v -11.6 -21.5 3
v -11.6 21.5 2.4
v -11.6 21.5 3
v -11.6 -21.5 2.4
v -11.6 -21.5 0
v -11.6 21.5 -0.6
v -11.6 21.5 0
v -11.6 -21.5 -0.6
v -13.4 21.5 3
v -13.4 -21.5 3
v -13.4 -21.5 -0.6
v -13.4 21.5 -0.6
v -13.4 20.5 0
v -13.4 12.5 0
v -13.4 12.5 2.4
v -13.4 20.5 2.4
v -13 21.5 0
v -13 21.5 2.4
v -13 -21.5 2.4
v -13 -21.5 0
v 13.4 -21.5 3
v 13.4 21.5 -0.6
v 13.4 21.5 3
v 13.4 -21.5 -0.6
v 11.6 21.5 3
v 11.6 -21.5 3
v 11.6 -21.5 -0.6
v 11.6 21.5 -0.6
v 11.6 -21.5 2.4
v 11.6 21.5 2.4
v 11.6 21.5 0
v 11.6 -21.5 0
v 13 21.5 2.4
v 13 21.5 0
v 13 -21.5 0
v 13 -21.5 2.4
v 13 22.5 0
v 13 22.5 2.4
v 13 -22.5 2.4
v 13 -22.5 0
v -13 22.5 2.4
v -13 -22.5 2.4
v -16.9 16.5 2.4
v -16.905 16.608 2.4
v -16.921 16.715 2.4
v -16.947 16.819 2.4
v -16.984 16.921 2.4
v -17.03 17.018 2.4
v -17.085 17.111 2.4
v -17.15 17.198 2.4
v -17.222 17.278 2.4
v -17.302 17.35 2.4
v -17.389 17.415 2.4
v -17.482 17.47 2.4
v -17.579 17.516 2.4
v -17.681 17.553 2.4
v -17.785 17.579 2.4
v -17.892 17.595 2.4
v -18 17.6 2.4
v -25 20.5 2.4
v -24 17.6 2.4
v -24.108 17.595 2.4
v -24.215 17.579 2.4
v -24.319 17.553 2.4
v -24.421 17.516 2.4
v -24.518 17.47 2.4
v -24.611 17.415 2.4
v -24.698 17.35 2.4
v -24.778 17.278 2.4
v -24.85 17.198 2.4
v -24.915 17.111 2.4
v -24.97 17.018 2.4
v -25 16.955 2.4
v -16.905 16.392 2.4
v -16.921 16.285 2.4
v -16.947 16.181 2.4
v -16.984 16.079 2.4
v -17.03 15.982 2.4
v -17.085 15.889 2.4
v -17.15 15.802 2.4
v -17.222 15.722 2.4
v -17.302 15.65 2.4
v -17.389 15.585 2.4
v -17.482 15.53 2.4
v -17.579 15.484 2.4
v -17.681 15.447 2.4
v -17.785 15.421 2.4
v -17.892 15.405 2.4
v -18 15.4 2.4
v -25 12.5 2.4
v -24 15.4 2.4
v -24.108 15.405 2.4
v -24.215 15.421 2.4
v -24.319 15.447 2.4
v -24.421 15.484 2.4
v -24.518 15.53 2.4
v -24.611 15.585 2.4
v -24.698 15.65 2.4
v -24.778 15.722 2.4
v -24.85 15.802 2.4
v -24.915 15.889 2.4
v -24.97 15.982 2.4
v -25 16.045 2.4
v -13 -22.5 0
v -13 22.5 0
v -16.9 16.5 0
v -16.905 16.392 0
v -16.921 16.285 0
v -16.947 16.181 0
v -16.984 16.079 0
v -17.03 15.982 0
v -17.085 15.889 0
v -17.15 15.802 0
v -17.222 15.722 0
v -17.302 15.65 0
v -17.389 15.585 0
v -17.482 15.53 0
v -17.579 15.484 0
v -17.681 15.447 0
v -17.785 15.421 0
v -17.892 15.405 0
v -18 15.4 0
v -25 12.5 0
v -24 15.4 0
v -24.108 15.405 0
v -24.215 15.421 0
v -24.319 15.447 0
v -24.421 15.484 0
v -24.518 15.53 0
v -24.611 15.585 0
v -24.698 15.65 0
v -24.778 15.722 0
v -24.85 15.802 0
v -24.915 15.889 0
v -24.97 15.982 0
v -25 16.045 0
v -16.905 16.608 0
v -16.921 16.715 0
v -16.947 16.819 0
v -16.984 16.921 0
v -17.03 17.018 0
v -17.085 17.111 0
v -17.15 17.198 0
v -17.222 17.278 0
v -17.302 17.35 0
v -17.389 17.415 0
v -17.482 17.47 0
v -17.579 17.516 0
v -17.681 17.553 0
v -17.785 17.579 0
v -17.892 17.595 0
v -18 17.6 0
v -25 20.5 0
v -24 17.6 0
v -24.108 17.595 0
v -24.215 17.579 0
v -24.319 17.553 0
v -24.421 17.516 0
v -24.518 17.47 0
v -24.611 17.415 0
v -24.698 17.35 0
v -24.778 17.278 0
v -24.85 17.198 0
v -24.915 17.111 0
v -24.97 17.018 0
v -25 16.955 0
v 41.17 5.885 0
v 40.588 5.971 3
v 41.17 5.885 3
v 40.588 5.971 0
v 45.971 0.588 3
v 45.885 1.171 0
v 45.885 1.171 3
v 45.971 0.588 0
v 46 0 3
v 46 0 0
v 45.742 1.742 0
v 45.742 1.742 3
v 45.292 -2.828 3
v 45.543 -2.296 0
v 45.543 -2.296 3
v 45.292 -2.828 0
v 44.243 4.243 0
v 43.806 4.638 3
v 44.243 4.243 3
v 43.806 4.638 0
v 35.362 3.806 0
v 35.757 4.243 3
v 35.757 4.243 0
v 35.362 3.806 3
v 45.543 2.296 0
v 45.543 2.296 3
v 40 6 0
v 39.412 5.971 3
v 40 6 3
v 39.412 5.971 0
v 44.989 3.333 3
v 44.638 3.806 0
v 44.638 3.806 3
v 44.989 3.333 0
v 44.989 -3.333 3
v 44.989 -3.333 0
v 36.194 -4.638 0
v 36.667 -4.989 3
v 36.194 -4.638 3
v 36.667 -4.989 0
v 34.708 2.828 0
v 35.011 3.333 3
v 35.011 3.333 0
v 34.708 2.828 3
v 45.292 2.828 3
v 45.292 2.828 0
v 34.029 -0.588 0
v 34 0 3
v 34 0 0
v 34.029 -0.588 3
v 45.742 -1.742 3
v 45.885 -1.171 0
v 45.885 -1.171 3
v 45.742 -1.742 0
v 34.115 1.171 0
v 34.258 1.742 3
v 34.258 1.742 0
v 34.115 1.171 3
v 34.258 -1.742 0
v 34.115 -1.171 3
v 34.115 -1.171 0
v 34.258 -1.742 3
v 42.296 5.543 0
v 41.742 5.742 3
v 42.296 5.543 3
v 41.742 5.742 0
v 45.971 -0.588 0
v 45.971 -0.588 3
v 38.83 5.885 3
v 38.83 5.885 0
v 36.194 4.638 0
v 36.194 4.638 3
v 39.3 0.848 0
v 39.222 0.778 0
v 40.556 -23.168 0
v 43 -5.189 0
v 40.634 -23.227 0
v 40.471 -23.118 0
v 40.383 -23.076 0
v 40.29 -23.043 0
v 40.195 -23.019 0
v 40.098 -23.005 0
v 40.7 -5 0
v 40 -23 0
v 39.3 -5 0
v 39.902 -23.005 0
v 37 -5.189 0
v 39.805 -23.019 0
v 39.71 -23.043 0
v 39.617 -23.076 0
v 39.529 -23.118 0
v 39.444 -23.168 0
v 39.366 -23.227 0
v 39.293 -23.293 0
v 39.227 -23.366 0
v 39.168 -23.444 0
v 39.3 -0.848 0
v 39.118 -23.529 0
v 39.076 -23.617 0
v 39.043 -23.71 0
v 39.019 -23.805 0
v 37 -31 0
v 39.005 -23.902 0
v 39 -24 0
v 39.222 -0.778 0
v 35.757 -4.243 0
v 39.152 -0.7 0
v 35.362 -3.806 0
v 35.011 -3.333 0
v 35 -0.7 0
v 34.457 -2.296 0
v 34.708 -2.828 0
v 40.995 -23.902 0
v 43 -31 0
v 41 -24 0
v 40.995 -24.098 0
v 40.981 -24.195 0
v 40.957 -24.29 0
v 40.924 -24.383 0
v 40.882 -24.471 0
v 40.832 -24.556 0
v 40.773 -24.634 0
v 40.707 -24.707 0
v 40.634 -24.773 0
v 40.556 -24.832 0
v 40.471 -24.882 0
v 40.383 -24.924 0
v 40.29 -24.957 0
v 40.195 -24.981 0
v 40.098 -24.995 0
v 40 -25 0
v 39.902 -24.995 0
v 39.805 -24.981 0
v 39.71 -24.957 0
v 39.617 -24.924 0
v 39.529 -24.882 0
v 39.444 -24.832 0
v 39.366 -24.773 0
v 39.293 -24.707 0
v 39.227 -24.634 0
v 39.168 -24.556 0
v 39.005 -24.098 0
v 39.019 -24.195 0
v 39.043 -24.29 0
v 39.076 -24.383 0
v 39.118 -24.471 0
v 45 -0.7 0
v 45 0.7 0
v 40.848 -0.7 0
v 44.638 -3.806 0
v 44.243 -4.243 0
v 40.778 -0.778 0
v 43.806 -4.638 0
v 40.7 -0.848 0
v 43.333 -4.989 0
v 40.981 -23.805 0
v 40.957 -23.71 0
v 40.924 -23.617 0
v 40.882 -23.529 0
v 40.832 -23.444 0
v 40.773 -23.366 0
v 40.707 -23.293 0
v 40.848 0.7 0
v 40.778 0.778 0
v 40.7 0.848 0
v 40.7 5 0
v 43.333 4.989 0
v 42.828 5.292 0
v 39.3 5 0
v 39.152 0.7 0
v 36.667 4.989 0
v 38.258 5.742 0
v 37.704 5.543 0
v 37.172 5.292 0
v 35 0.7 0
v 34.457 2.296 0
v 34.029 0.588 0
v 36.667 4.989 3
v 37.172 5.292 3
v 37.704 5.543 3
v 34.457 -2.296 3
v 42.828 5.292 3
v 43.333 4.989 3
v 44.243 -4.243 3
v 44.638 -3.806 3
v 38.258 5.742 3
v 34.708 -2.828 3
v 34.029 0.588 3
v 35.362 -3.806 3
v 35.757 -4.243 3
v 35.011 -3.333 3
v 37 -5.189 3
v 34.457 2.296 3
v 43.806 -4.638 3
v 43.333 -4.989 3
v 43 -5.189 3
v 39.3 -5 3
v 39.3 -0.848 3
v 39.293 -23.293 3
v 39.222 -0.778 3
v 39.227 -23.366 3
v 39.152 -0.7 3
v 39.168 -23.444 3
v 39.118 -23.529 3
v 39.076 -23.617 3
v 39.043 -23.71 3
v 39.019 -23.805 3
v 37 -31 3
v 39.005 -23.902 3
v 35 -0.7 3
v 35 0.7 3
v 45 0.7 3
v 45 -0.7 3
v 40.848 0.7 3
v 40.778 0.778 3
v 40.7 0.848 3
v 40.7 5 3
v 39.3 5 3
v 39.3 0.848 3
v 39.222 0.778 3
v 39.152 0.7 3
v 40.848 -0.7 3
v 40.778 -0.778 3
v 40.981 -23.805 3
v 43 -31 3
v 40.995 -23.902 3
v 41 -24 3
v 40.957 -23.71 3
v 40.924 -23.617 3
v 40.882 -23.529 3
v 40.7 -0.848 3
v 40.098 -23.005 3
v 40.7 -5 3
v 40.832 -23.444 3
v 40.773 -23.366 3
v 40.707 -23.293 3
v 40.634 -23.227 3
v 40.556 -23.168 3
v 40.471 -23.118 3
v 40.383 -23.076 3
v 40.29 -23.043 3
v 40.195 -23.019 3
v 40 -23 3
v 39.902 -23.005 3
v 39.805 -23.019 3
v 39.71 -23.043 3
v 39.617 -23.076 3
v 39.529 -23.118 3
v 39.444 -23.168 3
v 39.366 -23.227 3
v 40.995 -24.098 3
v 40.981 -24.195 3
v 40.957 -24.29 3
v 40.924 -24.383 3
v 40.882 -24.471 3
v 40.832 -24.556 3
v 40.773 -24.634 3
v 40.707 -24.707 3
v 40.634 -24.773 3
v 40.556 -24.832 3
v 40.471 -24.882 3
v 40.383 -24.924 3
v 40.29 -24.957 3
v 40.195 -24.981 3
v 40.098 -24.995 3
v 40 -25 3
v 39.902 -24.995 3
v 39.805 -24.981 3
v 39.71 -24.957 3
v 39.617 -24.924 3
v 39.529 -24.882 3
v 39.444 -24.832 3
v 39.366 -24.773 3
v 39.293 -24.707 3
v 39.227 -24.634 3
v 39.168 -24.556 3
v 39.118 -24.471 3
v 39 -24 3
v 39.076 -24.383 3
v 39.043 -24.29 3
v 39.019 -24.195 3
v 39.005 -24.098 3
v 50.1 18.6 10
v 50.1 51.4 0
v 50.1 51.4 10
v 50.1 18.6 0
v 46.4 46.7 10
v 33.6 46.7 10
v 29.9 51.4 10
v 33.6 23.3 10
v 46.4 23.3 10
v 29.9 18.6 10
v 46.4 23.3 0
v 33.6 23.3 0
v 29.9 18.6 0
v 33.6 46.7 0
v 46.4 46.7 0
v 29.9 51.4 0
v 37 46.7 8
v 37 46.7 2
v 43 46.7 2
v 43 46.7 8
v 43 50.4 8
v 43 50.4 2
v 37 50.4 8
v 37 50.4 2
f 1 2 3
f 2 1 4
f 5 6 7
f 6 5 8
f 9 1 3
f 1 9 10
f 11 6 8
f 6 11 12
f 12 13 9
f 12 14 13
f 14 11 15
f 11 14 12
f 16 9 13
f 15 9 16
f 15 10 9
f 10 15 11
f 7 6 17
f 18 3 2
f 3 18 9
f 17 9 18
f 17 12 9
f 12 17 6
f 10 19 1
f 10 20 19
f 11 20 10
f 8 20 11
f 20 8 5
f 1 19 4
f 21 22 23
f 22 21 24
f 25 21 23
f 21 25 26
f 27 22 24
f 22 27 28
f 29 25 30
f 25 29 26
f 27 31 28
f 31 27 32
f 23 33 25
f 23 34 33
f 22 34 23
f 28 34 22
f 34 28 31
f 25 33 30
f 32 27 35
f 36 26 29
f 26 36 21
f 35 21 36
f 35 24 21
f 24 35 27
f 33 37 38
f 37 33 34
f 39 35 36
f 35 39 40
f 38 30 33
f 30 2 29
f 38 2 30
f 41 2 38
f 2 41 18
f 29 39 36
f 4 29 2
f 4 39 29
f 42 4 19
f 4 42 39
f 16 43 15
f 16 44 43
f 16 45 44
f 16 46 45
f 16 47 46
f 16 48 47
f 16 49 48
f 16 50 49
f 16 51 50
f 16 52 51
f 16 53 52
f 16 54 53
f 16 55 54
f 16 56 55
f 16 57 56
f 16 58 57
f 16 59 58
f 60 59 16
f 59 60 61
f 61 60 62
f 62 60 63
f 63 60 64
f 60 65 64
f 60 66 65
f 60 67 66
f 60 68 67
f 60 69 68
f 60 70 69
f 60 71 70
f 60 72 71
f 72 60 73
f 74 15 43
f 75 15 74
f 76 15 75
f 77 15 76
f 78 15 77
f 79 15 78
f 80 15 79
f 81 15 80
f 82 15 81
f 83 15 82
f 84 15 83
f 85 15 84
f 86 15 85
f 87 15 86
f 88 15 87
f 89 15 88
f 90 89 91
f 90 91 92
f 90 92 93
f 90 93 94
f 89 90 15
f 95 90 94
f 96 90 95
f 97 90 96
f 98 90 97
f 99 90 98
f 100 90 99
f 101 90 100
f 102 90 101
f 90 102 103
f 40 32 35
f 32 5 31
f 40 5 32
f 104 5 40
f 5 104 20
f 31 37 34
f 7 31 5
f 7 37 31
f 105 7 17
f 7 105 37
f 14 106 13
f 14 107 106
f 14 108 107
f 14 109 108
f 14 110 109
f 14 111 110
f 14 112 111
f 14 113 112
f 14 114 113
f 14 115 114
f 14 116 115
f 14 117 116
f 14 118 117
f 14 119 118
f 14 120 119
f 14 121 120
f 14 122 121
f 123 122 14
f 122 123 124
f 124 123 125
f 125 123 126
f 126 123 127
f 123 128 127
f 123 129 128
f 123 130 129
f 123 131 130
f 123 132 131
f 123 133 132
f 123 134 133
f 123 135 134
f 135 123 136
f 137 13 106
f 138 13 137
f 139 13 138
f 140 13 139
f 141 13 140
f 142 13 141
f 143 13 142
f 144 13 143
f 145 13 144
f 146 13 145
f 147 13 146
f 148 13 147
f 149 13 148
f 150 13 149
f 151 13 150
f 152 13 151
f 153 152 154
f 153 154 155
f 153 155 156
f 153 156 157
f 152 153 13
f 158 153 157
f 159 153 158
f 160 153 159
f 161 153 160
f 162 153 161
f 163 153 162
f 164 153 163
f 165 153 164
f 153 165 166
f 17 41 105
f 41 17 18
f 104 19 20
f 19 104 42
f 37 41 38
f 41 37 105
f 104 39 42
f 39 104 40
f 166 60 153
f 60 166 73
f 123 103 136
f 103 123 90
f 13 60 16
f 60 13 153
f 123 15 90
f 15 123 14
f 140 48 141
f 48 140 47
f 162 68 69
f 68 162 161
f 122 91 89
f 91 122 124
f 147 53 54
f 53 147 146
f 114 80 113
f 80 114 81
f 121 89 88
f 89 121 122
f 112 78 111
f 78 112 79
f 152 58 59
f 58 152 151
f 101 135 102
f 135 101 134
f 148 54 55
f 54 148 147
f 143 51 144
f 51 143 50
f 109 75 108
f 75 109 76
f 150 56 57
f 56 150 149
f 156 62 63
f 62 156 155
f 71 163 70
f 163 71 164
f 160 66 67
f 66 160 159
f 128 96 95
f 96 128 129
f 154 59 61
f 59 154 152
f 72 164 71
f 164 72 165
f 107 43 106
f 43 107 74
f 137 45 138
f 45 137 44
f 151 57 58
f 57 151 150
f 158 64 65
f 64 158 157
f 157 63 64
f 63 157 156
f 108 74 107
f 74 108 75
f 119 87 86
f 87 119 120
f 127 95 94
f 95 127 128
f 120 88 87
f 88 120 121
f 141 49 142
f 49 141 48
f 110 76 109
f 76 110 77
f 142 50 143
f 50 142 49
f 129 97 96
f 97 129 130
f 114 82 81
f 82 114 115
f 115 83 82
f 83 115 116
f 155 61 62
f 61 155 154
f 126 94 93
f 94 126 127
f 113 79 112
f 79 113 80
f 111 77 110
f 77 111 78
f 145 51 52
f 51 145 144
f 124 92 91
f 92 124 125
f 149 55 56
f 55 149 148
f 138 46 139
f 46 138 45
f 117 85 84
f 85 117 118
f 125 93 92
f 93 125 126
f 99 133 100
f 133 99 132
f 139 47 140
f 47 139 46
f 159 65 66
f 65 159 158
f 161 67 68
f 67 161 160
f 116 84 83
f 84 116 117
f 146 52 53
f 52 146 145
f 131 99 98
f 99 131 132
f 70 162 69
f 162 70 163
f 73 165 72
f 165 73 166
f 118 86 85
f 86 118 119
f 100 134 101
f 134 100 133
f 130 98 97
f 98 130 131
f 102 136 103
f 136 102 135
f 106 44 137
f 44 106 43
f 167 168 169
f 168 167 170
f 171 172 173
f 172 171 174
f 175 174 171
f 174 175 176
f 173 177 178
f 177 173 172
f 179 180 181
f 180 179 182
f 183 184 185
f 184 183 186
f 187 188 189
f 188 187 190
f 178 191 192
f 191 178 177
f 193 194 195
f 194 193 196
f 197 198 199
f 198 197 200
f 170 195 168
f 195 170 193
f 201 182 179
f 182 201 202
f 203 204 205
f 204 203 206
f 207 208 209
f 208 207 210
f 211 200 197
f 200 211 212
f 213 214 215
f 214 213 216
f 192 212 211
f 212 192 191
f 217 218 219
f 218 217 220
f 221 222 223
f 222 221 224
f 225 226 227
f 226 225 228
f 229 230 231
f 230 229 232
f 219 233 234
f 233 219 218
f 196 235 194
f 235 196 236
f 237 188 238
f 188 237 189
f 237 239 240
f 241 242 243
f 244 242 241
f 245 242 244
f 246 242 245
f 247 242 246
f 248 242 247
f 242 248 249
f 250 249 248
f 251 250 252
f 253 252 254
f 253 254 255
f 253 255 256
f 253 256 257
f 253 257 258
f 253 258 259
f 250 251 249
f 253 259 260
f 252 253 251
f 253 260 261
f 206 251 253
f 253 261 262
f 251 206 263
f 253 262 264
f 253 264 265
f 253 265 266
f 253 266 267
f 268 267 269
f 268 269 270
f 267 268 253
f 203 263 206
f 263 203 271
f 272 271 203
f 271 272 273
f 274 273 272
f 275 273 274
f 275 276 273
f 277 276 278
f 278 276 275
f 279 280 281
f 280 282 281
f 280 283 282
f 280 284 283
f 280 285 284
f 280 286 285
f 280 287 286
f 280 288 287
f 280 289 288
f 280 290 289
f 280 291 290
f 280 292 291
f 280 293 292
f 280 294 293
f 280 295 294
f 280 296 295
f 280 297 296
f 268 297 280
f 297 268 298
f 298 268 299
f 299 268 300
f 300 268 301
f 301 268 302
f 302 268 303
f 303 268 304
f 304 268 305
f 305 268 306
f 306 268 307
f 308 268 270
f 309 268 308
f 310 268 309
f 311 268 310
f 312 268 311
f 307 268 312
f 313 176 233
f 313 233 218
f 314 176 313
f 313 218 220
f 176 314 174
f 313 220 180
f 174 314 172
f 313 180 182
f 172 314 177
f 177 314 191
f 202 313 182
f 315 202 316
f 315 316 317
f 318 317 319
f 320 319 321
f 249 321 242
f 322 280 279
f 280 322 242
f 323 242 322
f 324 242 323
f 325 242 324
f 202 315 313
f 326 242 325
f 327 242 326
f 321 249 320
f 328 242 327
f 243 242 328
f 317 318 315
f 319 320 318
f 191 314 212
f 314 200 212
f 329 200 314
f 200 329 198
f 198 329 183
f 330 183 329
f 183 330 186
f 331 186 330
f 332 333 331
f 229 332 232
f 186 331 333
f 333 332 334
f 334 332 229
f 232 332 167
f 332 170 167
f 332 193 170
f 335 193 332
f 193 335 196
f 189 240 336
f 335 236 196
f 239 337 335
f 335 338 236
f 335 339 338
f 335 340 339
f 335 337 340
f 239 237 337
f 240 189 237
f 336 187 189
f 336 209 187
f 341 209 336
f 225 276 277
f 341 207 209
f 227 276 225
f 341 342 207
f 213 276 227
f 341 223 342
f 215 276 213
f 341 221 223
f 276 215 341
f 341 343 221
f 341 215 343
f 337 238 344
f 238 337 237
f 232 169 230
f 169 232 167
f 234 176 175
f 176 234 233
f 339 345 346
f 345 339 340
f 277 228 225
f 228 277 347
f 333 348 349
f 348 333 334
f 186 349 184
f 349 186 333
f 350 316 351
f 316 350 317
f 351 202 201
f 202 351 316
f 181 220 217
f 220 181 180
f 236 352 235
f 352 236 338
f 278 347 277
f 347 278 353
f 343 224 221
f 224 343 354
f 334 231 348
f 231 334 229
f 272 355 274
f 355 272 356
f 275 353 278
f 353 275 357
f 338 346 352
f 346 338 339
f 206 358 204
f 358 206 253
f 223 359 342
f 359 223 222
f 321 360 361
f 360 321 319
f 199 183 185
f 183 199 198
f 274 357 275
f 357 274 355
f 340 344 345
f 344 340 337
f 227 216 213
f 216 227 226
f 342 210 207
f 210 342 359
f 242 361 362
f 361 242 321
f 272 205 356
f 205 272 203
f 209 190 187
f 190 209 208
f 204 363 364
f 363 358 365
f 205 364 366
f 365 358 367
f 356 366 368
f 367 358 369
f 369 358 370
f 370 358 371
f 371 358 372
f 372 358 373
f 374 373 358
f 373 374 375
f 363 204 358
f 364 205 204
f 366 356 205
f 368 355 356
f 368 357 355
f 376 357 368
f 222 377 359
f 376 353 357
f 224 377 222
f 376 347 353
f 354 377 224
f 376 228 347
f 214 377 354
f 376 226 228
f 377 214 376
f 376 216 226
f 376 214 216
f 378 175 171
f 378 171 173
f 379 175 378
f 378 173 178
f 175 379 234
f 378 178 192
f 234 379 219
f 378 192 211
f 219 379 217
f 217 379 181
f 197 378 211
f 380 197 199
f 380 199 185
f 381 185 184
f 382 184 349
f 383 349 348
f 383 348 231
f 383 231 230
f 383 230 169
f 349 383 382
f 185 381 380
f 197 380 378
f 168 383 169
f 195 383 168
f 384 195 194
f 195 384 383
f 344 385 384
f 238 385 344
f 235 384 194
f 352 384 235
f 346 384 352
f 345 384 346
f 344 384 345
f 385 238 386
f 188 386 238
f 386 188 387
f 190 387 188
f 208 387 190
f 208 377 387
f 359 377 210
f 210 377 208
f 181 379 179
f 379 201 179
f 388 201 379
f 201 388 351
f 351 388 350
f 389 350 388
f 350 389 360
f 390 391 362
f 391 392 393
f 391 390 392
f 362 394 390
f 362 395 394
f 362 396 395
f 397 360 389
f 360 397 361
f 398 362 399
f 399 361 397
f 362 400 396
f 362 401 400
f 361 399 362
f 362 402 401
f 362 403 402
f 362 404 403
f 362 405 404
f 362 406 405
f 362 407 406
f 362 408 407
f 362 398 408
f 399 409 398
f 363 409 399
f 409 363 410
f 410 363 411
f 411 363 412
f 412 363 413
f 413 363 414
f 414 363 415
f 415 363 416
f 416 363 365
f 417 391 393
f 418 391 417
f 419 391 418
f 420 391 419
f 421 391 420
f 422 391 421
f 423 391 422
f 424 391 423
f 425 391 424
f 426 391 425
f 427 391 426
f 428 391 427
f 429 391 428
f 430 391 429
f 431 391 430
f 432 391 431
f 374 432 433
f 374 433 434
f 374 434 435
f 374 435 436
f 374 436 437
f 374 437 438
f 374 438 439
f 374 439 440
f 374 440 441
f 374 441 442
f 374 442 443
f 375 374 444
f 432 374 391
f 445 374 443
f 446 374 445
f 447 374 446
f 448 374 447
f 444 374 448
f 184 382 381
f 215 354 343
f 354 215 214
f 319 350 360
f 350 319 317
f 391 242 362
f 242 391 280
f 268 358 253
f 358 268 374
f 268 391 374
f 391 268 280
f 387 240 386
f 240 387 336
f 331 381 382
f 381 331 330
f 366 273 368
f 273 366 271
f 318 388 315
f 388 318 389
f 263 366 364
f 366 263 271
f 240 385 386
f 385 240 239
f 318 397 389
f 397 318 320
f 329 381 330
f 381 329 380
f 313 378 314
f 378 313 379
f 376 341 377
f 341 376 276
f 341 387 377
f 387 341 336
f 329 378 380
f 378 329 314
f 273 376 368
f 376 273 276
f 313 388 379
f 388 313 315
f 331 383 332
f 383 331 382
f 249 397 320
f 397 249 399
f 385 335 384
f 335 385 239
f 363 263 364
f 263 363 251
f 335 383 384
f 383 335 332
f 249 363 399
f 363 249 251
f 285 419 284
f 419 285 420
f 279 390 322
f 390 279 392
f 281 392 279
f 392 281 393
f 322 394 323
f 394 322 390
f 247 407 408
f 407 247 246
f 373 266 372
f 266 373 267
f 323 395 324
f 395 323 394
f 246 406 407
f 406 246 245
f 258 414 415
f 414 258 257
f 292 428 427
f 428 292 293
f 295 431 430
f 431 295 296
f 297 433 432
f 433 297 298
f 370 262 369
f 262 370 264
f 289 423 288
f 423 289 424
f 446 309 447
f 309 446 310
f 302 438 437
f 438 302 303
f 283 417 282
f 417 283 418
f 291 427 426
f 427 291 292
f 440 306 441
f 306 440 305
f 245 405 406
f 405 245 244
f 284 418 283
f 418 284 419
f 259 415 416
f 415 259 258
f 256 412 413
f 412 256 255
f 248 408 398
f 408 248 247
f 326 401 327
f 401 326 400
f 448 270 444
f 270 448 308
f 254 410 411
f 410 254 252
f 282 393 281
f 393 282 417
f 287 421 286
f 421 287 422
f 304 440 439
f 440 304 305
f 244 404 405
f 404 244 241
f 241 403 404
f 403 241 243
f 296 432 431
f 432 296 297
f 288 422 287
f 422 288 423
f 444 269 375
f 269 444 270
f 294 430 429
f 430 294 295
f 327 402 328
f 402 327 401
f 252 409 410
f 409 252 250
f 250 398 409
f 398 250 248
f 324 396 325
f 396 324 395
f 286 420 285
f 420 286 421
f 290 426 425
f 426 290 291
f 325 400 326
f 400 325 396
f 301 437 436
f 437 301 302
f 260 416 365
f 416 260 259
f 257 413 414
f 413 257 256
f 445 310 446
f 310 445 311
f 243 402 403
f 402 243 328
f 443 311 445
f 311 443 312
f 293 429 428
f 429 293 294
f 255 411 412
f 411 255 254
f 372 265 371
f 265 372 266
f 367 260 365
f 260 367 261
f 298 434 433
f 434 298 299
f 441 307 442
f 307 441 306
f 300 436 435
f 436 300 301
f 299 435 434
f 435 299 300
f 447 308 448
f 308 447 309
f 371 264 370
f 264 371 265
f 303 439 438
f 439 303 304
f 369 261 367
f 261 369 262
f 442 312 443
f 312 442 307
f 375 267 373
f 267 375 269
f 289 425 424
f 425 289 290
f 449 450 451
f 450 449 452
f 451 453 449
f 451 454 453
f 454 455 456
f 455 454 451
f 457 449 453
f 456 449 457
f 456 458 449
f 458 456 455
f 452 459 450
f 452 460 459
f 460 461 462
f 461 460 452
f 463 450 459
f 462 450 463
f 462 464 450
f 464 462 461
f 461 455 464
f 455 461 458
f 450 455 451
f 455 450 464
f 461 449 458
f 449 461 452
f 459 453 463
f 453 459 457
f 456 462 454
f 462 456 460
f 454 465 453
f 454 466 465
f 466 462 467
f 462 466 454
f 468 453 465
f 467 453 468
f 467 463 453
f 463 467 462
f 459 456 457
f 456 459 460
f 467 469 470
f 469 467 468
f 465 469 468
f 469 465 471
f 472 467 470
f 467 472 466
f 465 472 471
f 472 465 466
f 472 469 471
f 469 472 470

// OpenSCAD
// file: parameters.scad
// Shared parametric dimensions — Automated Pill Dispenser
// Include from part files in this folder: include <parameters.scad>;

// ----- Global print / fit -----
layer_h         = 0.2;
nozzle_d        = 0.4;
wall            = 2.4;          // ~6 perimeters @ 0.4 mm
clearance_slip  = 0.30;         // PLA slip fit
clearance_press = 0.08;         // light press fit (servo horn hub)

// ----- Arduino Nano 33 BLE -----
nano_l = 45.0;
nano_w = 18.0;
nano_h = 7.0;
nano_usb_w = 9.0;
nano_usb_h = 4.0;

// ----- MG90S servo body -----
servo_l = 22.8;
servo_w = 12.2;
servo_h = 28.5;
servo_tab_l = 32.2;             // flange tip-to-tip (approx)
servo_tab_t = 2.5;
servo_horn_od = 7.0;            // round horn boss OD (press-fit target)
servo_shaft_clear_d = 9.0;      // plate pass-through

// ----- LiPo + TP4056 -----
lipo_l = 30.0;
lipo_w = 20.0;
lipo_h = 6.0;
tp4056_l = 26.0;
tp4056_w = 17.0;
tp4056_h = 5.0;
tp4056_usbc_w = 9.5;
tp4056_usbc_h = 4.0;

// ----- Part A main enclosure -----
base_outer_xy = 120.0;
base_outer_h  = 42.0;
chute_angle   = 45.0;
chute_w       = 22.0;
chute_len     = 40.0;

// ----- Part B base plate -----
base_plate_dia = 100.0;
base_plate_h   = 5.0;
drop_w         = 20.0;
drop_d         = 15.0;
drop_r_offset  = 32.0;          // radial distance of drop-hole center from axis

// ----- Part C carousel -----
car_dia     = 98.0;
car_h       = 25.0;
car_pockets = 8;
car_wall    = 2.0;
car_hub_od  = 18.0;
car_hub_id  = servo_horn_od - clearance_press;

// ----- Part D latch gate -----
gate_travel   = 22.0;
gate_thickness = 2.4;
gate_w        = drop_w + 6.0;
gate_l        = drop_d + gate_travel + 8.0;
// main file
// Part D — Latch / side-gate (driven by second MG90S)
// Export:
//   cad/stl/part_d_latch_gate.stl
//   cad/stl/part_d_latch_horn_arm.stl  (set BUILD = "arm")
// Print gate flat; print arm flat. Snap gate into Part B rail grooves.

include <parameters.scad>;

$fn = 64;

// "gate" | "arm" | "both"
BUILD = "both";

module latch_gate() {
    // Sliding plate that covers/uncovers the drop hole
    difference() {
        union() {
            // Main gate blade
            translate([0, 0, gate_thickness / 2])
                cube([gate_w, gate_l, gate_thickness], center = true);
            // Side runners that ride in Part B grooves
            for (x = [-(drop_w / 2 + 2.5), (drop_w / 2 + 2.5)])
                translate([x, 0, gate_thickness / 2])
                    cube([1.8, gate_l - 2, gate_thickness + 1.2], center = true);
            // Drive tab toward servo ( -X )
            translate([-gate_w / 2 - 6, gate_l / 2 - 6, gate_thickness / 2])
                cube([12, 8, gate_thickness], center = true);
        }
        // Slot in drive tab for servo arm pin / screw
        translate([-gate_w / 2 - 8, gate_l / 2 - 6, gate_thickness / 2])
            rotate([0, 0, 0])
                hull() {
                    translate([-3, 0, 0]) cylinder(h = gate_thickness + 2, d = 2.2, center = true);
                    translate([3, 0, 0]) cylinder(h = gate_thickness + 2, d = 2.2, center = true);
                }
    }
}

module latch_servo_arm() {
    // Simple horn extension arm for MG90S → gate slot
    difference() {
        union() {
            cylinder(h = 3, d = 12, center = false);
            translate([0, -gate_travel / 2 - 4, 1.5])
                cube([6, gate_travel + 10, 3], center = true);
        }
        // Horn screw
        translate([0, 0, -0.1])
            cylinder(h = 4, d = 2.2, center = false);
        // Cross for stock horn
        translate([0, 0, 1.5])
            cube([10, 1.4, 4], center = true);
        translate([0, 0, 1.5])
            cube([1.4, 10, 4], center = true);
        // Pin hole at tip
        translate([0, -gate_travel - 2, 1.5])
            cylinder(h = 4, d = 2.0, center = true);
    }
}

module latch_servo_bracket() {
    // Optional micro bracket hint (printed with gate file as reference block)
    difference() {
        cube([servo_w + 8, servo_l + 10, 10], center = true);
        cube([servo_w + clearance_slip * 2, servo_l + clearance_slip * 2, 12], center = true);
        // Wire exit
        translate([0, servo_l / 2, 0])
            cube([6, 8, 6], center = true);
    }
}

if (BUILD == "gate") {
    latch_gate();
} else if (BUILD == "arm") {
    latch_servo_arm();
} else {
    latch_gate();
    translate([40, 0, 0]) latch_servo_arm();
    translate([40, 35, 5]) latch_servo_bracket();
}
